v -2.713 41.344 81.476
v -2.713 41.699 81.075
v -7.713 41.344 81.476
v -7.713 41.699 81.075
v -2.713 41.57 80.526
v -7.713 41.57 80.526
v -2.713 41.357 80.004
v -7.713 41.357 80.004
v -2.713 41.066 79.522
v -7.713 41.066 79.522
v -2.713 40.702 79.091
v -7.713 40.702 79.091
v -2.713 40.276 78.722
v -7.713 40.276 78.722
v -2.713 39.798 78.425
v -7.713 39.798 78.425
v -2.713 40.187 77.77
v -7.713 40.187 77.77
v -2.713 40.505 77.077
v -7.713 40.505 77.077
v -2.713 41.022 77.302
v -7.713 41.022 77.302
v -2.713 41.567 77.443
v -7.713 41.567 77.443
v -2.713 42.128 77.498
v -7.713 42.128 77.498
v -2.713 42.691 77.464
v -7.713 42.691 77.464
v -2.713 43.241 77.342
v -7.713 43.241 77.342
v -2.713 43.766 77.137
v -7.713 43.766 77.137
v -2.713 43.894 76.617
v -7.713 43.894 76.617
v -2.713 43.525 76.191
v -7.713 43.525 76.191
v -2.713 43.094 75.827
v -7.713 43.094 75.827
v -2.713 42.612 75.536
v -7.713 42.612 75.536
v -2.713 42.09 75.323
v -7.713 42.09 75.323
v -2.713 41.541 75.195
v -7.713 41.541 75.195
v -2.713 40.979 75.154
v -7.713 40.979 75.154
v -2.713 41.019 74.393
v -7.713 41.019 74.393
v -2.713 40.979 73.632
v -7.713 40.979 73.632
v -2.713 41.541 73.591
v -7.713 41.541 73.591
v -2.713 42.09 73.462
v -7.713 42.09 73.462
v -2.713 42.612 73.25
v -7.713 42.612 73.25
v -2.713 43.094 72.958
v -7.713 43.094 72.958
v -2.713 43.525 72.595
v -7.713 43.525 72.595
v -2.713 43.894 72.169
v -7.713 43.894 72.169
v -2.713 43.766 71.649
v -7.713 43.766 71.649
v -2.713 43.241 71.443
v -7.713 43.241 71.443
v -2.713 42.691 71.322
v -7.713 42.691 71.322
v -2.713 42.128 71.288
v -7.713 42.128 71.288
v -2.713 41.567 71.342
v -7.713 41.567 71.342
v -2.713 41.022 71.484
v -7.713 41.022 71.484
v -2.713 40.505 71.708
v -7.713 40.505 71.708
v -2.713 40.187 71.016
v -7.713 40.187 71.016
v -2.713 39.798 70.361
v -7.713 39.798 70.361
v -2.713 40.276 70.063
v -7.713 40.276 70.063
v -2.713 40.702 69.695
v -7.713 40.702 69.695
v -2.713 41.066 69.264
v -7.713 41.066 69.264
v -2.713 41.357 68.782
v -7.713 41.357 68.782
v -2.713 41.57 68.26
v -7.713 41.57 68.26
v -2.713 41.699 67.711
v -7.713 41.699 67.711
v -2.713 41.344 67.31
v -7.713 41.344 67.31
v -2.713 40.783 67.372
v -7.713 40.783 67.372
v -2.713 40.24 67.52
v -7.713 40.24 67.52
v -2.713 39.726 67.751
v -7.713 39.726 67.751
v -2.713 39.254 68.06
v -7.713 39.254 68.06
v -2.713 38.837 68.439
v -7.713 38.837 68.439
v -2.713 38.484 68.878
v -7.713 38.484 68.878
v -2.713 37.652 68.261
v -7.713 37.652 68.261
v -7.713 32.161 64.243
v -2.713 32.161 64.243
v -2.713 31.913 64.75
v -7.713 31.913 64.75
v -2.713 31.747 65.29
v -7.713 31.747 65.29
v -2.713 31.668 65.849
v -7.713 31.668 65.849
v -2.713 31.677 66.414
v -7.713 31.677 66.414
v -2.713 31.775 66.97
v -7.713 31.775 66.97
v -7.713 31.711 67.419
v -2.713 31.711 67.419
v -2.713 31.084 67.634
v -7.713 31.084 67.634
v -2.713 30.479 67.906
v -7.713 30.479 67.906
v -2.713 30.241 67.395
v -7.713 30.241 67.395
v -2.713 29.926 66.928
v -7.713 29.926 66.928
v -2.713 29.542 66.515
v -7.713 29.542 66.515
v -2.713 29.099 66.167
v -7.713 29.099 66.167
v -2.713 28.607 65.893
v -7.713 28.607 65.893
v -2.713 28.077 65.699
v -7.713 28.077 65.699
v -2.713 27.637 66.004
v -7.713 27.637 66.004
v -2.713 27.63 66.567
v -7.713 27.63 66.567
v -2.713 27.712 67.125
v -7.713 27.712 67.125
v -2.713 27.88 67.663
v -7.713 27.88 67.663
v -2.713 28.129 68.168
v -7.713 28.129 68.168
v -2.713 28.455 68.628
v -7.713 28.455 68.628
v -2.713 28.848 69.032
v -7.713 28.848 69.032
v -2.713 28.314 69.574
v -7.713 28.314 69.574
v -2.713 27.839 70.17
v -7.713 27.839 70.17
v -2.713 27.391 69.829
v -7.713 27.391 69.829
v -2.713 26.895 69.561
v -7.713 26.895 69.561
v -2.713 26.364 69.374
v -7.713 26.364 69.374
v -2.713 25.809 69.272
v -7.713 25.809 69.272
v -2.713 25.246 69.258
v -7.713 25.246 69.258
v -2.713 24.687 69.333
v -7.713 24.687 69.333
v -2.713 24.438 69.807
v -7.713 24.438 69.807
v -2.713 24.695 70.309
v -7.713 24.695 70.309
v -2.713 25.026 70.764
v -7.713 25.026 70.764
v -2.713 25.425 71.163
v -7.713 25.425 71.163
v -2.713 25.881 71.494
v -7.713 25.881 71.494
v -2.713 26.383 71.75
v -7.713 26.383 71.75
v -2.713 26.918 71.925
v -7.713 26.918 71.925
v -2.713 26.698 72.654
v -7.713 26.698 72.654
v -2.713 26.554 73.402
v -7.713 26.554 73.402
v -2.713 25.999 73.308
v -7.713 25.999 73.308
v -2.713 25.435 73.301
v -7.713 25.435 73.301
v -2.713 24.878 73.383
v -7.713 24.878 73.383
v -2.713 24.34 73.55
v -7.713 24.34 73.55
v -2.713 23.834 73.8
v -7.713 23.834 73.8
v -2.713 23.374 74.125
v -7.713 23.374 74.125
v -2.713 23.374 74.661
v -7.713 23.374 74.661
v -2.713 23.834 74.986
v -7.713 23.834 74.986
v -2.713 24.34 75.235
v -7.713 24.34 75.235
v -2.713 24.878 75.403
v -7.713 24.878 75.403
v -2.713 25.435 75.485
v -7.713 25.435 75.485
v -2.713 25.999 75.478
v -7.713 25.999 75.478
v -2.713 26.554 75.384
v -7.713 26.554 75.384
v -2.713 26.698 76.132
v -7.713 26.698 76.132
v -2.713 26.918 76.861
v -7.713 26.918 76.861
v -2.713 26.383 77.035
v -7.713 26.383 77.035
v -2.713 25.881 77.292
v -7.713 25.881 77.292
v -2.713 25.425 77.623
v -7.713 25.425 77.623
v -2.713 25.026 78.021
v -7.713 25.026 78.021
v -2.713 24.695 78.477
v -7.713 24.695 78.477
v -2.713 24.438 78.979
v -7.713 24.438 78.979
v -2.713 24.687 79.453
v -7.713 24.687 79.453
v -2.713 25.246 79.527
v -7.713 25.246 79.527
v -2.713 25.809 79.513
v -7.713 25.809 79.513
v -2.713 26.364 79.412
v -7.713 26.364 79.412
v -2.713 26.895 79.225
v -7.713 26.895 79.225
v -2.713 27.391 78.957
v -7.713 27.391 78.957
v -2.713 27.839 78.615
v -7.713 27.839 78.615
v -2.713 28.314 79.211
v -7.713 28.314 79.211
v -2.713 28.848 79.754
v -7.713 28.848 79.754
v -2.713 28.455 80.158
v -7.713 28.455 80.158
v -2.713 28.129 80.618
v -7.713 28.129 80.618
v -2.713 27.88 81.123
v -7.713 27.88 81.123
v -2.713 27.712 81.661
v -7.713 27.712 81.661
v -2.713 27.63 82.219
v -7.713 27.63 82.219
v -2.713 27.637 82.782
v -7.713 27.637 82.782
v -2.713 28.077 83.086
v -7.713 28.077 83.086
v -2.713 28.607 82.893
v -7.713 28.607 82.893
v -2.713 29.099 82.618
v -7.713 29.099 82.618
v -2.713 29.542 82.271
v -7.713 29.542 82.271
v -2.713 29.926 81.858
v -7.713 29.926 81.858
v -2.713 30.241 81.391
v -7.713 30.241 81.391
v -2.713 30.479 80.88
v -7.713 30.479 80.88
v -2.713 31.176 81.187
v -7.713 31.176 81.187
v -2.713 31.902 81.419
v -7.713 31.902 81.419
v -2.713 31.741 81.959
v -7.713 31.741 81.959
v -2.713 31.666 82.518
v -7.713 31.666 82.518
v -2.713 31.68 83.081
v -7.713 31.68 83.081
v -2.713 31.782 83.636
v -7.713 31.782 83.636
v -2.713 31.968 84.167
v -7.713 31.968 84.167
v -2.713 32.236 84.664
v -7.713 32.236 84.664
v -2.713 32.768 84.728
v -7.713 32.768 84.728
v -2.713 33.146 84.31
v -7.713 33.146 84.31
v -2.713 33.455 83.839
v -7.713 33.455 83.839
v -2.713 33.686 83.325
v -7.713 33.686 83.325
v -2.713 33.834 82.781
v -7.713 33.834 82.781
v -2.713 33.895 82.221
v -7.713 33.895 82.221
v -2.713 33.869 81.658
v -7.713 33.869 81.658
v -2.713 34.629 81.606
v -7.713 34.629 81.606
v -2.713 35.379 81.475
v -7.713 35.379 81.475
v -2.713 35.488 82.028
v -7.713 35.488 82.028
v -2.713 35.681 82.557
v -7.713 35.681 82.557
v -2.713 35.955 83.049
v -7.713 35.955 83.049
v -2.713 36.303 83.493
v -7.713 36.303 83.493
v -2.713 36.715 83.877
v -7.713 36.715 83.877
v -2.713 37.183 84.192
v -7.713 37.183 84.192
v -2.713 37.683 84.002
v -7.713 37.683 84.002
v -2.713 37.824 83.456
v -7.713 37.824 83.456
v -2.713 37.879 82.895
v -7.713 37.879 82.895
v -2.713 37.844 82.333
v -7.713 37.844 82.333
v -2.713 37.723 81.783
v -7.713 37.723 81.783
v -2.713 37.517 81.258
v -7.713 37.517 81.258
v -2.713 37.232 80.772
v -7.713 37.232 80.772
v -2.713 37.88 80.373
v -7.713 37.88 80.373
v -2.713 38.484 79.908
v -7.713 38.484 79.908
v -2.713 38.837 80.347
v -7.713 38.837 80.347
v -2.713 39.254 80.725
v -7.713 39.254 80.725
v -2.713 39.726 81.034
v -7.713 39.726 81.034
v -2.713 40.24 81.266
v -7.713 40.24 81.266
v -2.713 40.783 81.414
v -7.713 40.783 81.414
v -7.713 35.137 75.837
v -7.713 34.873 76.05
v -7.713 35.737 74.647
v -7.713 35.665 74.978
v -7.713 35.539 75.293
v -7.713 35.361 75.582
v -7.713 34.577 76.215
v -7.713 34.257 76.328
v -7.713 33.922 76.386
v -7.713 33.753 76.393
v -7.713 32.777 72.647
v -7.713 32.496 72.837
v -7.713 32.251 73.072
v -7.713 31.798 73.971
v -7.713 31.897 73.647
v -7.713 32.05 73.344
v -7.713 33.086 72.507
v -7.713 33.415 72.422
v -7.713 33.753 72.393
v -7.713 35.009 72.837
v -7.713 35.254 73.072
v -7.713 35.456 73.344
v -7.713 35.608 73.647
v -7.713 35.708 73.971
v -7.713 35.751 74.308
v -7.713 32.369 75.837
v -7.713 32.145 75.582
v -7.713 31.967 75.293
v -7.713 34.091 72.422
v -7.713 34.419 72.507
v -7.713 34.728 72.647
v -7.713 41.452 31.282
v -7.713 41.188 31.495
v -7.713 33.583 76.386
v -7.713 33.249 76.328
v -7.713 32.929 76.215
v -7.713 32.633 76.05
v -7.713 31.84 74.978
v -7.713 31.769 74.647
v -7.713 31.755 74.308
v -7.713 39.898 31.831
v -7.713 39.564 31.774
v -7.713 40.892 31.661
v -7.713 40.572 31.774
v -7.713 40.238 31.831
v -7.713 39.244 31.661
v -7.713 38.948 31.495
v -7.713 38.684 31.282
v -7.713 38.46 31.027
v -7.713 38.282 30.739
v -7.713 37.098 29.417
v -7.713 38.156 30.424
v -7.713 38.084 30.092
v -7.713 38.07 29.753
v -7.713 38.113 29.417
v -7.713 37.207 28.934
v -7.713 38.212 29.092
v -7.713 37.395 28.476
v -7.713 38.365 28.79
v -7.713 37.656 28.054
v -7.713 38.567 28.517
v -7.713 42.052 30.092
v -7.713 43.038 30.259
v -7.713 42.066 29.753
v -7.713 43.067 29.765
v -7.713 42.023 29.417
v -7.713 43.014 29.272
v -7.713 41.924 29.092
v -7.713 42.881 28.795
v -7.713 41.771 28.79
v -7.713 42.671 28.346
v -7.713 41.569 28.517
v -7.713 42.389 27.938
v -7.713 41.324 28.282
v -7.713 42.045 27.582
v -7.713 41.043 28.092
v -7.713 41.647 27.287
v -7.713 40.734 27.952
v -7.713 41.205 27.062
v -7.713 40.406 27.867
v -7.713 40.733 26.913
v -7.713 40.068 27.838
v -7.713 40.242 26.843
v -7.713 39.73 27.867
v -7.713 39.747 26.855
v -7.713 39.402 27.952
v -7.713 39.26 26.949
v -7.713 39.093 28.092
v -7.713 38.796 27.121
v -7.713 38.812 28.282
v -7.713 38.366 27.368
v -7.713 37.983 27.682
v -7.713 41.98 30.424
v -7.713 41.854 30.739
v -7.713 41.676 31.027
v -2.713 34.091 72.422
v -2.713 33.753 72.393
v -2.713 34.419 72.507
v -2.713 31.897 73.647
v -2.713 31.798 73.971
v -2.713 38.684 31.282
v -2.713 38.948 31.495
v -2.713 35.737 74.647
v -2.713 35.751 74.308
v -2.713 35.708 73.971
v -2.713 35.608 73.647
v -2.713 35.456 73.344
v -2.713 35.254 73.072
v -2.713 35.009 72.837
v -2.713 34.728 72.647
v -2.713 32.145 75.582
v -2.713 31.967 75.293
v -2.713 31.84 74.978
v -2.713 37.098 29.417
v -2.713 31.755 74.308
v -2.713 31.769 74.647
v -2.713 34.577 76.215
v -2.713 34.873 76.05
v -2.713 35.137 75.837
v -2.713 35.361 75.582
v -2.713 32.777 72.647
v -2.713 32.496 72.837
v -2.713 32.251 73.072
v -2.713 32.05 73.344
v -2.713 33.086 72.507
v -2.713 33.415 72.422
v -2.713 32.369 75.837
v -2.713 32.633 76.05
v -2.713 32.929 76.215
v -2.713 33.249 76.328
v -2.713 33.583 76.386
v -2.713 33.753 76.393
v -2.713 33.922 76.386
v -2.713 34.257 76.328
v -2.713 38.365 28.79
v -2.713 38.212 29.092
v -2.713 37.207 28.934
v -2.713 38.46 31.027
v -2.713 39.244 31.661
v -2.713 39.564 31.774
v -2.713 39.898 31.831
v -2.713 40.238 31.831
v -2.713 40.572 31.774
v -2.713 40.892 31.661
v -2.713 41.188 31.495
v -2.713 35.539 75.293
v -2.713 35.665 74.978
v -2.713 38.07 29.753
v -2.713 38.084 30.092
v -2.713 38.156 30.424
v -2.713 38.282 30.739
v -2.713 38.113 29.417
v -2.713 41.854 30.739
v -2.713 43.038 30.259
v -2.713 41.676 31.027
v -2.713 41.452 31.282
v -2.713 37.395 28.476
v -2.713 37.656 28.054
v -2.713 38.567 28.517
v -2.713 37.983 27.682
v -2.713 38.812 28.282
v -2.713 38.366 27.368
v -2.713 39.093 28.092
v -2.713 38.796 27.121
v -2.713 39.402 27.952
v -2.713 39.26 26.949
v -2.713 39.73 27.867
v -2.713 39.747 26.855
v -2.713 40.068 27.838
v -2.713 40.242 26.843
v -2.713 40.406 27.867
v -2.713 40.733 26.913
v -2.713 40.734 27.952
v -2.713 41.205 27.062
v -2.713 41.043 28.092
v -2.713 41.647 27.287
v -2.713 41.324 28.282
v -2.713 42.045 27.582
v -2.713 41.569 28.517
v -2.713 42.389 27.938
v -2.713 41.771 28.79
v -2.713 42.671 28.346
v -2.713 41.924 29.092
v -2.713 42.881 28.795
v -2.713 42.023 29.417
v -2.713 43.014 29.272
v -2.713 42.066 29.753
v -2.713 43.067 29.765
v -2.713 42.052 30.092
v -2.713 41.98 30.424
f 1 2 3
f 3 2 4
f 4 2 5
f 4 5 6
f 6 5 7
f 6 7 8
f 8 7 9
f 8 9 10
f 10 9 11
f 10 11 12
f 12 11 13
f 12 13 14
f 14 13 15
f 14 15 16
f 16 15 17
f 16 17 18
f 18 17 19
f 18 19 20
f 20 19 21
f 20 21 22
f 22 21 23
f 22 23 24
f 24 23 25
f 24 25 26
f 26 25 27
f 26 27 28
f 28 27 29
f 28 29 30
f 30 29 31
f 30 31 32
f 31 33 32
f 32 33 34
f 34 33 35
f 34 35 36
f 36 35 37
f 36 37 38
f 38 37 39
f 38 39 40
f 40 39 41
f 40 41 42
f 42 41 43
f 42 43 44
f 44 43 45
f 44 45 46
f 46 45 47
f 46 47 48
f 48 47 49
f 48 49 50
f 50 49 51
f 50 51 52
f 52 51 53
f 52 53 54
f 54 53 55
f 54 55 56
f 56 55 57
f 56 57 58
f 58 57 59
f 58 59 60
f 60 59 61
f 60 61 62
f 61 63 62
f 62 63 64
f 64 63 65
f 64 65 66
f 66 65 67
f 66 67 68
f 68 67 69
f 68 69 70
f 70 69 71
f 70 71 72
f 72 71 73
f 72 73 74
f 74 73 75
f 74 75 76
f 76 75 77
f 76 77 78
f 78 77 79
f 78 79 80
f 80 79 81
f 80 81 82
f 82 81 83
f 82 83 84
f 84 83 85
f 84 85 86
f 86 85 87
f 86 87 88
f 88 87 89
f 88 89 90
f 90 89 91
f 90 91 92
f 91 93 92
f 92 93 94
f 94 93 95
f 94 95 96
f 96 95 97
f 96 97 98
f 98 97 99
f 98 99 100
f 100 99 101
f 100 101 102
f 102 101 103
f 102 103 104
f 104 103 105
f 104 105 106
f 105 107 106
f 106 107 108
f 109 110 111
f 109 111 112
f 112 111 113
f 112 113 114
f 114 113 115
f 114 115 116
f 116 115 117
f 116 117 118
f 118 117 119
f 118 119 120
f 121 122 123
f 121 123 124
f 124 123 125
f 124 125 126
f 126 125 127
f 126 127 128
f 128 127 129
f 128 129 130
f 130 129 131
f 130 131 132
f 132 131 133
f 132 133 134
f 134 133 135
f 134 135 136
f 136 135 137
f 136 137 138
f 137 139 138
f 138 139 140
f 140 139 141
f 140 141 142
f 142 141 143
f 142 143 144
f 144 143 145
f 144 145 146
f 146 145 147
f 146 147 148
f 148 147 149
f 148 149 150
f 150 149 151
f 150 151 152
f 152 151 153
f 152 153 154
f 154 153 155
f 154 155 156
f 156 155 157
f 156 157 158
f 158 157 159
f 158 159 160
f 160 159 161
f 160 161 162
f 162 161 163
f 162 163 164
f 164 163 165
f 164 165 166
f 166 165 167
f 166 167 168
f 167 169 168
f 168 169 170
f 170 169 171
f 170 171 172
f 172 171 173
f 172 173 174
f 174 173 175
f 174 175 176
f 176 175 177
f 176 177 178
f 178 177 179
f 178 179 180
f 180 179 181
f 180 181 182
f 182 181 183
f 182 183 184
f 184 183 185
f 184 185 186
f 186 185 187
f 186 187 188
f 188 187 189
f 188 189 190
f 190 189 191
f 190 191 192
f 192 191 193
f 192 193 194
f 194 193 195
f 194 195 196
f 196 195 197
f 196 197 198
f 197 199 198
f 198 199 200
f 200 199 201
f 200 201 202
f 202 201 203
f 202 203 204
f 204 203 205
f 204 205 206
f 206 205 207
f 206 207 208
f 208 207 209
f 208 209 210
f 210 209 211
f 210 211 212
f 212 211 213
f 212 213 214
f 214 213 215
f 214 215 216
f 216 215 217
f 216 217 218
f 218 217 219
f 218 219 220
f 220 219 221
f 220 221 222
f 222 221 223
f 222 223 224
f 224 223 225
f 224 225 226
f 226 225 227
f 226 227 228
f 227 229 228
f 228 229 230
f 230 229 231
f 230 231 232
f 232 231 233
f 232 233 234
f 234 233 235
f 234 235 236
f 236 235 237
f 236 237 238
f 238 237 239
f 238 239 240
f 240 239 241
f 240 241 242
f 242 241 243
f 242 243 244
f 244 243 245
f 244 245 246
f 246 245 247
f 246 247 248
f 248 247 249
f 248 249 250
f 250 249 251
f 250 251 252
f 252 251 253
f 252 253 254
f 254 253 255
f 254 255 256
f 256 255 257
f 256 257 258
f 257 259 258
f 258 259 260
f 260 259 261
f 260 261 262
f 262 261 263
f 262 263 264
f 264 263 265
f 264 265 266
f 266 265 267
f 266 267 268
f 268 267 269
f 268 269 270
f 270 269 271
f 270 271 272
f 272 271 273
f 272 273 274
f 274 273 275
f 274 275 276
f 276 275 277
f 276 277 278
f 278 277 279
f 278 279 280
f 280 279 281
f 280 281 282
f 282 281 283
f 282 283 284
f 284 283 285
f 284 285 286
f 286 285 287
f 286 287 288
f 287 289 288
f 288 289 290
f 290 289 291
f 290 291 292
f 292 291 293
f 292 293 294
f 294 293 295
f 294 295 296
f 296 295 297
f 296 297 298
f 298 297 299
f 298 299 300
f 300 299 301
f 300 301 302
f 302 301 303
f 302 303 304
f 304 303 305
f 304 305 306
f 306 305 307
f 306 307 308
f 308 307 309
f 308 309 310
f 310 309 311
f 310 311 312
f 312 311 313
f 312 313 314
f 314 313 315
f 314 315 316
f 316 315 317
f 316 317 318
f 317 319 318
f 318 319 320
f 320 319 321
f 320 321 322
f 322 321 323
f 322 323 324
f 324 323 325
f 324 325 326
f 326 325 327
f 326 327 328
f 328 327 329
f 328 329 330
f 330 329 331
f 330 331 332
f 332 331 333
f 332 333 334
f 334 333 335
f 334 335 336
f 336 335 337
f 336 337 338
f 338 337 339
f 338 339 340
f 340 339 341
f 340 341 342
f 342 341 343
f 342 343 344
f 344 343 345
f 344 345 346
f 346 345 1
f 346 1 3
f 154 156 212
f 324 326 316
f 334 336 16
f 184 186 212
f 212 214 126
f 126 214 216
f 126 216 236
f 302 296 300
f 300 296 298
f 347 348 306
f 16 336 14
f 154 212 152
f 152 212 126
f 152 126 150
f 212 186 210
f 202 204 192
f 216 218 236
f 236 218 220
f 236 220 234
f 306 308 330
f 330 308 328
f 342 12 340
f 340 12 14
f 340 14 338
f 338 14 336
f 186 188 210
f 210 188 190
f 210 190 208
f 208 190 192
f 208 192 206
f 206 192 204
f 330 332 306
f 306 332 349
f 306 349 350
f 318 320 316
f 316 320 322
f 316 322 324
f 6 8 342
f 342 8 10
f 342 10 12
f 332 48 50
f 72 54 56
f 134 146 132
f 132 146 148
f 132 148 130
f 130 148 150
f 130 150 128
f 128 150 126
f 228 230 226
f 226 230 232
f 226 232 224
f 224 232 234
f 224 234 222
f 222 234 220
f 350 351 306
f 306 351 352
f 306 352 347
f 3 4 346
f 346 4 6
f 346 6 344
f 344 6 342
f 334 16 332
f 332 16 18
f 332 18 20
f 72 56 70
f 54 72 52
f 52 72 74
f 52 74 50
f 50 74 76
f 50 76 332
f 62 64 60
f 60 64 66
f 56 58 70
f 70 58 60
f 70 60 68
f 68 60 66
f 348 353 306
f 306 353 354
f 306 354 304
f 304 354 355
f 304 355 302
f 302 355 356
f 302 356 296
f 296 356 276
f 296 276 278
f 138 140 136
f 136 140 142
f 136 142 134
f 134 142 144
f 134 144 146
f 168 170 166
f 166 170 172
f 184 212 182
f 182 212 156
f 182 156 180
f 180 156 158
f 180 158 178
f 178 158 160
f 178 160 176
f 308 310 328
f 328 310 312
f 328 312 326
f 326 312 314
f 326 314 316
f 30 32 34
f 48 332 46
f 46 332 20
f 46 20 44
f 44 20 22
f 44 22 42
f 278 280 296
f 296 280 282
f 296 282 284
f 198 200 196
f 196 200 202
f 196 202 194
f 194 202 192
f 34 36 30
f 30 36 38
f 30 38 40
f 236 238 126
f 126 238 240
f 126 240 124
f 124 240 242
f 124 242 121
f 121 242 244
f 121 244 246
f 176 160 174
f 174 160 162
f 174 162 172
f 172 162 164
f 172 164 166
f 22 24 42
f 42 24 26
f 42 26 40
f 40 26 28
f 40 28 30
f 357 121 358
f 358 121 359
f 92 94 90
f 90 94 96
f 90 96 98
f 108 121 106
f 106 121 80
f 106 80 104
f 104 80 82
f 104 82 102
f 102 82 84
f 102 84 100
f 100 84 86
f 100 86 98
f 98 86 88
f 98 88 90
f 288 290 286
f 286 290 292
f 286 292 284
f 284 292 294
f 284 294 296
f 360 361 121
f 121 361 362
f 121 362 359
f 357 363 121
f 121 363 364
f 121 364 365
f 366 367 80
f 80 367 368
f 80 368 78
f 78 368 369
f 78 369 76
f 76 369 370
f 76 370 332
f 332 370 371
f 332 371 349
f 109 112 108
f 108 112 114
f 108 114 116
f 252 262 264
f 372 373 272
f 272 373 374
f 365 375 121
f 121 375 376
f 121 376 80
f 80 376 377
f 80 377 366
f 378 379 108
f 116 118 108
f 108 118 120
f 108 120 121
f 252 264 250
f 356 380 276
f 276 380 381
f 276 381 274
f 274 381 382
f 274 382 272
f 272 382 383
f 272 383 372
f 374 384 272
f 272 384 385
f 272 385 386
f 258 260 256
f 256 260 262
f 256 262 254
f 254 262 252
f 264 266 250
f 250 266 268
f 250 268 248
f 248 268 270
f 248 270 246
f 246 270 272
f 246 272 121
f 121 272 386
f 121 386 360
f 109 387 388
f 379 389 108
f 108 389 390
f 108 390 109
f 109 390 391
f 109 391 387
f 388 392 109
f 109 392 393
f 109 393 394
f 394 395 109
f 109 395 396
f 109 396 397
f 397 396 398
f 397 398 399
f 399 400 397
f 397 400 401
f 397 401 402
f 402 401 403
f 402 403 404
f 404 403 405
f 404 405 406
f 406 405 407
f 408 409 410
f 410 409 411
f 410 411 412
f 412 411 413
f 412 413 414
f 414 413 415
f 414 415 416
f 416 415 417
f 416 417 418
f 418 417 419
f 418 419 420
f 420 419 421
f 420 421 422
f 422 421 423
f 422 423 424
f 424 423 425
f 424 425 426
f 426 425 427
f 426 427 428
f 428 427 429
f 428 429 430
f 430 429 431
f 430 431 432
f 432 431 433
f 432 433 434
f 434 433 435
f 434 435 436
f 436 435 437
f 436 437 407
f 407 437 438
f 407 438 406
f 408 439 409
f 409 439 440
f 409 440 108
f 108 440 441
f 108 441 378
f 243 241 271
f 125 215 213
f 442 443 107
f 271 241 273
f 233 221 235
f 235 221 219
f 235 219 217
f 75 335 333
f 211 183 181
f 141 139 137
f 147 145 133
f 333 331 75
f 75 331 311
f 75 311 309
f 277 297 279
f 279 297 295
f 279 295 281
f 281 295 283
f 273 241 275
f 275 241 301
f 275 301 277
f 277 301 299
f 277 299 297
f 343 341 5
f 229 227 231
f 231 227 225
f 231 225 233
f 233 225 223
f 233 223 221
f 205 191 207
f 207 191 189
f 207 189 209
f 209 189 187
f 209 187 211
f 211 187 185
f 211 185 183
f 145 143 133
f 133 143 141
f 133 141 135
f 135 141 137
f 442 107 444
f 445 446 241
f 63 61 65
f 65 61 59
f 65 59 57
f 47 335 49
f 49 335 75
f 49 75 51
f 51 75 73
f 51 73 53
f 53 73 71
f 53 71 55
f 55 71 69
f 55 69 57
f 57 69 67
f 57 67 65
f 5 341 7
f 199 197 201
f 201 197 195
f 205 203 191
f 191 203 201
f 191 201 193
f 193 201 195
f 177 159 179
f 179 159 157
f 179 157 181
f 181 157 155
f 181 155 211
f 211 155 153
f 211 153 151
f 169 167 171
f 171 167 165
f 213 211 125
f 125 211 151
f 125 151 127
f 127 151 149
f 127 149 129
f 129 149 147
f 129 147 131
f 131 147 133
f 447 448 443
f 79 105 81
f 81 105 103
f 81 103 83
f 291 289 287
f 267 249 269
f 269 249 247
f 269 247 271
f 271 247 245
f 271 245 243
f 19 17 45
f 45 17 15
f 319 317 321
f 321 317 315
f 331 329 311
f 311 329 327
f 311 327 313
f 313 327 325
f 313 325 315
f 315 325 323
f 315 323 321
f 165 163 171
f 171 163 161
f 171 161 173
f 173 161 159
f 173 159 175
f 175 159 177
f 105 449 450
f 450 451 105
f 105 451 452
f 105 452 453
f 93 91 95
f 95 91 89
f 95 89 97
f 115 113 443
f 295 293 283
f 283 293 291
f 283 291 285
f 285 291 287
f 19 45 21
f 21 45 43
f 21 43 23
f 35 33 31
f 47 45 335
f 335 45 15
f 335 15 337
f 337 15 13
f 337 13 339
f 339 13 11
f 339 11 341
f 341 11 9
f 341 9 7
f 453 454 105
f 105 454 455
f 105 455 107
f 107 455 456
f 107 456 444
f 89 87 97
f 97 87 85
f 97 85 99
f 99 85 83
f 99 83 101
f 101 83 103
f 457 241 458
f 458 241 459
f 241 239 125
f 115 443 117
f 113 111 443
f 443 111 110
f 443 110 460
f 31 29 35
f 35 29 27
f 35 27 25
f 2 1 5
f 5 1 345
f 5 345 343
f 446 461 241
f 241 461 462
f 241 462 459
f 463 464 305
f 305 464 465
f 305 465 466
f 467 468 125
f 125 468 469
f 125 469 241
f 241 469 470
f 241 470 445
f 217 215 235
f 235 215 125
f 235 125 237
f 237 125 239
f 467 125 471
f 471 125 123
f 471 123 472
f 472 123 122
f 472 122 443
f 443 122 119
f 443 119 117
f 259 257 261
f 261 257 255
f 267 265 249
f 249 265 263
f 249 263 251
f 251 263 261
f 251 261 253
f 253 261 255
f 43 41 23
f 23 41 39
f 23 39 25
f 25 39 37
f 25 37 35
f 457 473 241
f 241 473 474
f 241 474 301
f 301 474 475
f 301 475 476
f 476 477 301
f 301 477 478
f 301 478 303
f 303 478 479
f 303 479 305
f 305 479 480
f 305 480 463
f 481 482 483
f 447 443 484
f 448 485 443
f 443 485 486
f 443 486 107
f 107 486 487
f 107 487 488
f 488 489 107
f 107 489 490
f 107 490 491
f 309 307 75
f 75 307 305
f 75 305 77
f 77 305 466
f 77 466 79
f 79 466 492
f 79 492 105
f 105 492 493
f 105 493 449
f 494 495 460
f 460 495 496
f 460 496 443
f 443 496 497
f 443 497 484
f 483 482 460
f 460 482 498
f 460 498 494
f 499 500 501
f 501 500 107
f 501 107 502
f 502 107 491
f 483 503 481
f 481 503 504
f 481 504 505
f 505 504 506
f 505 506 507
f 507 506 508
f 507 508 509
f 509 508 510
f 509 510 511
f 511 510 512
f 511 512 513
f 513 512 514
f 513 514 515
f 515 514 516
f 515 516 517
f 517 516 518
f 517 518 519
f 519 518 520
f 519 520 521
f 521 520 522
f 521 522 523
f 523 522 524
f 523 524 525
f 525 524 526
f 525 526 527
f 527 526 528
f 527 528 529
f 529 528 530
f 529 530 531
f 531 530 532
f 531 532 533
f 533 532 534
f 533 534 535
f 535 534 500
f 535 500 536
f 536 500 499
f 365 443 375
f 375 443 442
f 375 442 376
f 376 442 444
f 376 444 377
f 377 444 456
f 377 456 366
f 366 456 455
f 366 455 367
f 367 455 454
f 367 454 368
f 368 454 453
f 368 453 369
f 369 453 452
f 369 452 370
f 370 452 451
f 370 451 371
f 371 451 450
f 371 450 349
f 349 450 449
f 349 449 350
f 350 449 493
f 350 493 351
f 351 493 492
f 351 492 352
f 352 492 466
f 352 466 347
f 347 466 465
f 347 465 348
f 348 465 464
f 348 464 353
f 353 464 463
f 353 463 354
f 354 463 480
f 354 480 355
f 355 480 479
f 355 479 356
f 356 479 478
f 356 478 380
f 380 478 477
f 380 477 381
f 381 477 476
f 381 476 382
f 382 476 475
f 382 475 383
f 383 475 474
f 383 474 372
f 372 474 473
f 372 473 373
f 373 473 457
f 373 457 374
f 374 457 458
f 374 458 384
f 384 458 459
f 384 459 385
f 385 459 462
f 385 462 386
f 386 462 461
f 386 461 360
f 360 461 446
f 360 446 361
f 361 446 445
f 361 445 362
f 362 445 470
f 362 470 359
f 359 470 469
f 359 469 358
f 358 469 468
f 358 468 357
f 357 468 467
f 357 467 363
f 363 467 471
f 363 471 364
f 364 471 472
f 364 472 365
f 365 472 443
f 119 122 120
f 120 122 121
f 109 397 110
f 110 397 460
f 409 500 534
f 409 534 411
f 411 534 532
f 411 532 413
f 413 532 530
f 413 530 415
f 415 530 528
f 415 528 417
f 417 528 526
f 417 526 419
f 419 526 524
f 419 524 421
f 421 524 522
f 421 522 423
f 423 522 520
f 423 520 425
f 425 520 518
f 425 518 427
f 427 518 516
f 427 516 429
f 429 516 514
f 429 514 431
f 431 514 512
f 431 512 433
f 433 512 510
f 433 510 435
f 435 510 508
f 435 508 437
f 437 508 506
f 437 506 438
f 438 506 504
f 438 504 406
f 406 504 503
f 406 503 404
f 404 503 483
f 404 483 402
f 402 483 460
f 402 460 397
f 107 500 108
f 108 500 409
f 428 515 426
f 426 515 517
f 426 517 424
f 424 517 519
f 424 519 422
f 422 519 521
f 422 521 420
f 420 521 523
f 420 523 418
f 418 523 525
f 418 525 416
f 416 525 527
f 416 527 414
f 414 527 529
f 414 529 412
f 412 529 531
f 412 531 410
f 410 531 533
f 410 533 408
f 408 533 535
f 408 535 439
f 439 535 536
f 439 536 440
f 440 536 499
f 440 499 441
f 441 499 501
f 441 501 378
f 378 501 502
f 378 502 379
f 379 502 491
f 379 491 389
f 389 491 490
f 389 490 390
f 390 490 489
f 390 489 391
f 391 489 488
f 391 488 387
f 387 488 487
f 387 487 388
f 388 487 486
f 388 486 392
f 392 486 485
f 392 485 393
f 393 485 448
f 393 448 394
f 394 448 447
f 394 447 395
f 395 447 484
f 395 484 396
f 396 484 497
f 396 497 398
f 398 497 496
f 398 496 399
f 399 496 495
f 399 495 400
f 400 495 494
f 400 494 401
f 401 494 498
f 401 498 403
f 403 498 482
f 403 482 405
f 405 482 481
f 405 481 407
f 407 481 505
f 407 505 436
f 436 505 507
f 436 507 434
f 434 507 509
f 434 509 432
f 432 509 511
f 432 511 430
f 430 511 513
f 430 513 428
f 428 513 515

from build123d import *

# Parameters (mm, degrees)
SKETCH1_R           = 2
BOSS_EXTRUDE1_DEPTH = 5
SKETCH2_R           = 2
BOSS_EXTRUDE2_DEPTH = 5


with BuildPart() as part:
    # Sketch1 → Boss-Extrude1 (new body)
    with BuildSketch(Plane(origin=(-2.712826585, 0, 0), x_dir=(0, 0, -1), z_dir=(1, 0, 0))):
        with BuildLine():
            ThreePointArc((-81.47562753, 41.343615563), (-81.034251259, 39.725922602), (-79.907831624, 38.483778355))
            ThreePointArc((-79.907831624, 38.483778355), (-80.372835078, 37.880397724), (-80.772113271, 37.231650221))
            ThreePointArc((-80.772113271, 37.231650221), (-82.332972226, 37.844400456), (-84.002055602, 37.683452608))
            ThreePointArc((-84.002055602, 37.683452608), (-84.100262161, 37.43424746), (-84.192007076, 37.182591734))
            ThreePointArc((-84.192007076, 37.182591734), (-83.049408394, 35.955313535), (-81.474760125, 35.378922733))
            ThreePointArc((-81.474760125, 35.378922733), (-81.606095275, 34.628557837), (-81.65815056, 33.868566623))
            ThreePointArc((-81.65815056, 33.868566623), (-83.324981759, 33.685762686), (-84.728085497, 32.767588723))
            ThreePointArc((-84.728085497, 32.767588723), (-84.69923168, 32.50128966), (-84.663517521, 32.235823593))
            ThreePointArc((-84.663517521, 32.235823593), (-83.081452015, 31.6801148), (-81.419308055, 31.901521629))
            ThreePointArc((-81.419308055, 31.901521629), (-81.1868876, 31.176072024), (-80.879794738, 30.478941927))
            ThreePointArc((-80.879794738, 30.478941927), (-82.270747242, 29.542461997), (-83.086437186, 28.077404509))
            ThreePointArc((-83.086437186, 28.077404509), (-82.937133053, 27.855017437), (-82.782141503, 27.636556105))
            ThreePointArc((-82.782141503, 27.636556105), (-81.123041315, 27.879722907), (-79.754178815, 28.848205731))
            ThreePointArc((-79.754178815, 28.848205731), (-79.211247481, 28.313863177), (-78.615357745, 27.839298301))
            ThreePointArc((-78.615357745, 27.839298301), (-79.411781098, 26.363678645), (-79.45319251, 24.687364646))
            ThreePointArc((-79.45319251, 24.687364646), (-79.217641841, 24.559835763), (-78.978879596, 24.438426025))
            ThreePointArc((-78.978879596, 24.438426025), (-77.622824585, 25.424761837), (-76.860833445, 26.918452913))
            ThreePointArc((-76.860833445, 26.918452913), (-76.131770258, 26.697628851), (-75.383594806, 26.55434629))
            ThreePointArc((-75.383594806, 26.55434629), (-75.403038015, 24.877633587), (-74.660684041, 23.374086413))
            ThreePointArc((-74.660684041, 23.374086413), (-74.392848655, 23.370631049), (-74.125013268, 23.374086413))
            ThreePointArc((-74.125013268, 23.374086413), (-73.382659294, 24.877633587), (-73.402102503, 26.55434629))
            ThreePointArc((-73.402102503, 26.55434629), (-72.653927052, 26.697628851), (-71.924863864, 26.918452913))
            ThreePointArc((-71.924863864, 26.918452913), (-71.162872724, 25.424761837), (-69.806817713, 24.438426025))
            ThreePointArc((-69.806817713, 24.438426025), (-69.568055468, 24.559835763), (-69.332504799, 24.687364646))
            ThreePointArc((-69.332504799, 24.687364646), (-69.373916212, 26.363678645), (-70.170339564, 27.839298301))
            ThreePointArc((-70.170339564, 27.839298301), (-69.574449829, 28.313863177), (-69.031518494, 28.848205731))
            ThreePointArc((-69.031518494, 28.848205731), (-67.662655994, 27.879722907), (-66.003555806, 27.636556105))
            ThreePointArc((-66.003555806, 27.636556105), (-65.848564256, 27.855017437), (-65.699260124, 28.077404509))
            ThreePointArc((-65.699260124, 28.077404509), (-66.514950067, 29.542461997), (-67.905902571, 30.478941927))
            ThreePointArc((-67.905902571, 30.478941927), (-67.598809709, 31.176072024), (-67.366389254, 31.901521629))
            ThreePointArc((-67.366389254, 31.901521629), (-65.704245294, 31.6801148), (-64.122179788, 32.235823593))
            ThreePointArc((-64.122179788, 32.235823593), (-64.086465629, 32.50128966), (-64.057611812, 32.767588723))
            ThreePointArc((-64.057611812, 32.767588723), (-65.46071555, 33.685762686), (-67.12754675, 33.868566623))
            ThreePointArc((-67.12754675, 33.868566623), (-67.179602034, 34.628557837), (-67.310937184, 35.378922733))
            ThreePointArc((-67.310937184, 35.378922733), (-65.736288915, 35.955313535), (-64.593690233, 37.182591734))
            ThreePointArc((-64.593690233, 37.182591734), (-64.685435149, 37.43424746), (-64.783641707, 37.683452608))
            ThreePointArc((-64.783641707, 37.683452608), (-66.452725084, 37.844400456), (-68.013584038, 37.231650221))
            ThreePointArc((-68.013584038, 37.231650221), (-68.412862231, 37.880397724), (-68.877865686, 38.483778355))
            ThreePointArc((-68.877865686, 38.483778355), (-67.75144605, 39.725922602), (-67.31006978, 41.343615563))
            ThreePointArc((-67.31006978, 41.343615563), (-67.508256115, 41.523809654), (-67.711025111, 41.69883099))
            ThreePointArc((-67.711025111, 41.69883099), (-69.263721238, 41.065681511), (-70.361033972, 39.797750798))
            ThreePointArc((-70.361033972, 39.797750798), (-71.016065252, 40.186634356), (-71.708210323, 40.504803491))
            ThreePointArc((-71.708210323, 40.504803491), (-71.288068484, 42.128140906), (-71.64902861, 43.765654666))
            ThreePointArc((-71.64902861, 43.765654666), (-71.908254264, 43.833106827), (-72.169133764, 43.893849073))
            ThreePointArc((-72.169133764, 43.893849073), (-73.249738671, 42.611649181), (-73.632124061, 40.979005638))
            ThreePointArc((-73.632124061, 40.979005638), (-74.392848655, 41.018936713), (-75.153573248, 40.979005638))
            ThreePointArc((-75.153573248, 40.979005638), (-75.535958638, 42.611649181), (-76.616563545, 43.893849073))
            ThreePointArc((-76.616563545, 43.893849073), (-76.877443045, 43.833106827), (-77.1366687, 43.765654666))
            ThreePointArc((-77.1366687, 43.765654666), (-77.497628825, 42.128140906), (-77.077486986, 40.504803491))
            ThreePointArc((-77.077486986, 40.504803491), (-77.769632058, 40.186634356), (-78.424663337, 39.797750798))
            ThreePointArc((-78.424663337, 39.797750798), (-79.521976071, 41.065681511), (-81.074672198, 41.69883099))
            ThreePointArc((-81.074672198, 41.69883099), (-81.277441194, 41.523809654), (-81.47562753, 41.343615563))
        make_face()
        with Locations((-74.392848655, 33.752711127)):
            Circle(SKETCH1_R, mode=Mode.SUBTRACT)
    extrude(amount=-BOSS_EXTRUDE1_DEPTH)

    # Sketch2 → Boss-Extrude2 (add)
    with BuildSketch(Plane(origin=(-2.712826585, 0, 0), x_dir=(0, 0, -1), z_dir=(1, 0, 0))):
        with BuildLine():
            Line((-74.813866248, 36.72302158), (-30.259209457, 43.038285487))
            ThreePointArc((-30.259209457, 43.038285487), (-26.867881411, 40.488992628), (-29.41717427, 37.097664581))
            Line((-29.41717427, 37.097664581), (-73.971831061, 30.782400674))
            ThreePointArc((-73.971831061, 30.782400674), (-71.422538202, 34.173728721), (-74.813866248, 36.72302158))
        make_face()
        with Locations((-29.838191863, 40.067975034)):
            Circle(SKETCH2_R, mode=Mode.SUBTRACT)
    extrude(amount=-BOSS_EXTRUDE2_DEPTH)


solid = part.part
